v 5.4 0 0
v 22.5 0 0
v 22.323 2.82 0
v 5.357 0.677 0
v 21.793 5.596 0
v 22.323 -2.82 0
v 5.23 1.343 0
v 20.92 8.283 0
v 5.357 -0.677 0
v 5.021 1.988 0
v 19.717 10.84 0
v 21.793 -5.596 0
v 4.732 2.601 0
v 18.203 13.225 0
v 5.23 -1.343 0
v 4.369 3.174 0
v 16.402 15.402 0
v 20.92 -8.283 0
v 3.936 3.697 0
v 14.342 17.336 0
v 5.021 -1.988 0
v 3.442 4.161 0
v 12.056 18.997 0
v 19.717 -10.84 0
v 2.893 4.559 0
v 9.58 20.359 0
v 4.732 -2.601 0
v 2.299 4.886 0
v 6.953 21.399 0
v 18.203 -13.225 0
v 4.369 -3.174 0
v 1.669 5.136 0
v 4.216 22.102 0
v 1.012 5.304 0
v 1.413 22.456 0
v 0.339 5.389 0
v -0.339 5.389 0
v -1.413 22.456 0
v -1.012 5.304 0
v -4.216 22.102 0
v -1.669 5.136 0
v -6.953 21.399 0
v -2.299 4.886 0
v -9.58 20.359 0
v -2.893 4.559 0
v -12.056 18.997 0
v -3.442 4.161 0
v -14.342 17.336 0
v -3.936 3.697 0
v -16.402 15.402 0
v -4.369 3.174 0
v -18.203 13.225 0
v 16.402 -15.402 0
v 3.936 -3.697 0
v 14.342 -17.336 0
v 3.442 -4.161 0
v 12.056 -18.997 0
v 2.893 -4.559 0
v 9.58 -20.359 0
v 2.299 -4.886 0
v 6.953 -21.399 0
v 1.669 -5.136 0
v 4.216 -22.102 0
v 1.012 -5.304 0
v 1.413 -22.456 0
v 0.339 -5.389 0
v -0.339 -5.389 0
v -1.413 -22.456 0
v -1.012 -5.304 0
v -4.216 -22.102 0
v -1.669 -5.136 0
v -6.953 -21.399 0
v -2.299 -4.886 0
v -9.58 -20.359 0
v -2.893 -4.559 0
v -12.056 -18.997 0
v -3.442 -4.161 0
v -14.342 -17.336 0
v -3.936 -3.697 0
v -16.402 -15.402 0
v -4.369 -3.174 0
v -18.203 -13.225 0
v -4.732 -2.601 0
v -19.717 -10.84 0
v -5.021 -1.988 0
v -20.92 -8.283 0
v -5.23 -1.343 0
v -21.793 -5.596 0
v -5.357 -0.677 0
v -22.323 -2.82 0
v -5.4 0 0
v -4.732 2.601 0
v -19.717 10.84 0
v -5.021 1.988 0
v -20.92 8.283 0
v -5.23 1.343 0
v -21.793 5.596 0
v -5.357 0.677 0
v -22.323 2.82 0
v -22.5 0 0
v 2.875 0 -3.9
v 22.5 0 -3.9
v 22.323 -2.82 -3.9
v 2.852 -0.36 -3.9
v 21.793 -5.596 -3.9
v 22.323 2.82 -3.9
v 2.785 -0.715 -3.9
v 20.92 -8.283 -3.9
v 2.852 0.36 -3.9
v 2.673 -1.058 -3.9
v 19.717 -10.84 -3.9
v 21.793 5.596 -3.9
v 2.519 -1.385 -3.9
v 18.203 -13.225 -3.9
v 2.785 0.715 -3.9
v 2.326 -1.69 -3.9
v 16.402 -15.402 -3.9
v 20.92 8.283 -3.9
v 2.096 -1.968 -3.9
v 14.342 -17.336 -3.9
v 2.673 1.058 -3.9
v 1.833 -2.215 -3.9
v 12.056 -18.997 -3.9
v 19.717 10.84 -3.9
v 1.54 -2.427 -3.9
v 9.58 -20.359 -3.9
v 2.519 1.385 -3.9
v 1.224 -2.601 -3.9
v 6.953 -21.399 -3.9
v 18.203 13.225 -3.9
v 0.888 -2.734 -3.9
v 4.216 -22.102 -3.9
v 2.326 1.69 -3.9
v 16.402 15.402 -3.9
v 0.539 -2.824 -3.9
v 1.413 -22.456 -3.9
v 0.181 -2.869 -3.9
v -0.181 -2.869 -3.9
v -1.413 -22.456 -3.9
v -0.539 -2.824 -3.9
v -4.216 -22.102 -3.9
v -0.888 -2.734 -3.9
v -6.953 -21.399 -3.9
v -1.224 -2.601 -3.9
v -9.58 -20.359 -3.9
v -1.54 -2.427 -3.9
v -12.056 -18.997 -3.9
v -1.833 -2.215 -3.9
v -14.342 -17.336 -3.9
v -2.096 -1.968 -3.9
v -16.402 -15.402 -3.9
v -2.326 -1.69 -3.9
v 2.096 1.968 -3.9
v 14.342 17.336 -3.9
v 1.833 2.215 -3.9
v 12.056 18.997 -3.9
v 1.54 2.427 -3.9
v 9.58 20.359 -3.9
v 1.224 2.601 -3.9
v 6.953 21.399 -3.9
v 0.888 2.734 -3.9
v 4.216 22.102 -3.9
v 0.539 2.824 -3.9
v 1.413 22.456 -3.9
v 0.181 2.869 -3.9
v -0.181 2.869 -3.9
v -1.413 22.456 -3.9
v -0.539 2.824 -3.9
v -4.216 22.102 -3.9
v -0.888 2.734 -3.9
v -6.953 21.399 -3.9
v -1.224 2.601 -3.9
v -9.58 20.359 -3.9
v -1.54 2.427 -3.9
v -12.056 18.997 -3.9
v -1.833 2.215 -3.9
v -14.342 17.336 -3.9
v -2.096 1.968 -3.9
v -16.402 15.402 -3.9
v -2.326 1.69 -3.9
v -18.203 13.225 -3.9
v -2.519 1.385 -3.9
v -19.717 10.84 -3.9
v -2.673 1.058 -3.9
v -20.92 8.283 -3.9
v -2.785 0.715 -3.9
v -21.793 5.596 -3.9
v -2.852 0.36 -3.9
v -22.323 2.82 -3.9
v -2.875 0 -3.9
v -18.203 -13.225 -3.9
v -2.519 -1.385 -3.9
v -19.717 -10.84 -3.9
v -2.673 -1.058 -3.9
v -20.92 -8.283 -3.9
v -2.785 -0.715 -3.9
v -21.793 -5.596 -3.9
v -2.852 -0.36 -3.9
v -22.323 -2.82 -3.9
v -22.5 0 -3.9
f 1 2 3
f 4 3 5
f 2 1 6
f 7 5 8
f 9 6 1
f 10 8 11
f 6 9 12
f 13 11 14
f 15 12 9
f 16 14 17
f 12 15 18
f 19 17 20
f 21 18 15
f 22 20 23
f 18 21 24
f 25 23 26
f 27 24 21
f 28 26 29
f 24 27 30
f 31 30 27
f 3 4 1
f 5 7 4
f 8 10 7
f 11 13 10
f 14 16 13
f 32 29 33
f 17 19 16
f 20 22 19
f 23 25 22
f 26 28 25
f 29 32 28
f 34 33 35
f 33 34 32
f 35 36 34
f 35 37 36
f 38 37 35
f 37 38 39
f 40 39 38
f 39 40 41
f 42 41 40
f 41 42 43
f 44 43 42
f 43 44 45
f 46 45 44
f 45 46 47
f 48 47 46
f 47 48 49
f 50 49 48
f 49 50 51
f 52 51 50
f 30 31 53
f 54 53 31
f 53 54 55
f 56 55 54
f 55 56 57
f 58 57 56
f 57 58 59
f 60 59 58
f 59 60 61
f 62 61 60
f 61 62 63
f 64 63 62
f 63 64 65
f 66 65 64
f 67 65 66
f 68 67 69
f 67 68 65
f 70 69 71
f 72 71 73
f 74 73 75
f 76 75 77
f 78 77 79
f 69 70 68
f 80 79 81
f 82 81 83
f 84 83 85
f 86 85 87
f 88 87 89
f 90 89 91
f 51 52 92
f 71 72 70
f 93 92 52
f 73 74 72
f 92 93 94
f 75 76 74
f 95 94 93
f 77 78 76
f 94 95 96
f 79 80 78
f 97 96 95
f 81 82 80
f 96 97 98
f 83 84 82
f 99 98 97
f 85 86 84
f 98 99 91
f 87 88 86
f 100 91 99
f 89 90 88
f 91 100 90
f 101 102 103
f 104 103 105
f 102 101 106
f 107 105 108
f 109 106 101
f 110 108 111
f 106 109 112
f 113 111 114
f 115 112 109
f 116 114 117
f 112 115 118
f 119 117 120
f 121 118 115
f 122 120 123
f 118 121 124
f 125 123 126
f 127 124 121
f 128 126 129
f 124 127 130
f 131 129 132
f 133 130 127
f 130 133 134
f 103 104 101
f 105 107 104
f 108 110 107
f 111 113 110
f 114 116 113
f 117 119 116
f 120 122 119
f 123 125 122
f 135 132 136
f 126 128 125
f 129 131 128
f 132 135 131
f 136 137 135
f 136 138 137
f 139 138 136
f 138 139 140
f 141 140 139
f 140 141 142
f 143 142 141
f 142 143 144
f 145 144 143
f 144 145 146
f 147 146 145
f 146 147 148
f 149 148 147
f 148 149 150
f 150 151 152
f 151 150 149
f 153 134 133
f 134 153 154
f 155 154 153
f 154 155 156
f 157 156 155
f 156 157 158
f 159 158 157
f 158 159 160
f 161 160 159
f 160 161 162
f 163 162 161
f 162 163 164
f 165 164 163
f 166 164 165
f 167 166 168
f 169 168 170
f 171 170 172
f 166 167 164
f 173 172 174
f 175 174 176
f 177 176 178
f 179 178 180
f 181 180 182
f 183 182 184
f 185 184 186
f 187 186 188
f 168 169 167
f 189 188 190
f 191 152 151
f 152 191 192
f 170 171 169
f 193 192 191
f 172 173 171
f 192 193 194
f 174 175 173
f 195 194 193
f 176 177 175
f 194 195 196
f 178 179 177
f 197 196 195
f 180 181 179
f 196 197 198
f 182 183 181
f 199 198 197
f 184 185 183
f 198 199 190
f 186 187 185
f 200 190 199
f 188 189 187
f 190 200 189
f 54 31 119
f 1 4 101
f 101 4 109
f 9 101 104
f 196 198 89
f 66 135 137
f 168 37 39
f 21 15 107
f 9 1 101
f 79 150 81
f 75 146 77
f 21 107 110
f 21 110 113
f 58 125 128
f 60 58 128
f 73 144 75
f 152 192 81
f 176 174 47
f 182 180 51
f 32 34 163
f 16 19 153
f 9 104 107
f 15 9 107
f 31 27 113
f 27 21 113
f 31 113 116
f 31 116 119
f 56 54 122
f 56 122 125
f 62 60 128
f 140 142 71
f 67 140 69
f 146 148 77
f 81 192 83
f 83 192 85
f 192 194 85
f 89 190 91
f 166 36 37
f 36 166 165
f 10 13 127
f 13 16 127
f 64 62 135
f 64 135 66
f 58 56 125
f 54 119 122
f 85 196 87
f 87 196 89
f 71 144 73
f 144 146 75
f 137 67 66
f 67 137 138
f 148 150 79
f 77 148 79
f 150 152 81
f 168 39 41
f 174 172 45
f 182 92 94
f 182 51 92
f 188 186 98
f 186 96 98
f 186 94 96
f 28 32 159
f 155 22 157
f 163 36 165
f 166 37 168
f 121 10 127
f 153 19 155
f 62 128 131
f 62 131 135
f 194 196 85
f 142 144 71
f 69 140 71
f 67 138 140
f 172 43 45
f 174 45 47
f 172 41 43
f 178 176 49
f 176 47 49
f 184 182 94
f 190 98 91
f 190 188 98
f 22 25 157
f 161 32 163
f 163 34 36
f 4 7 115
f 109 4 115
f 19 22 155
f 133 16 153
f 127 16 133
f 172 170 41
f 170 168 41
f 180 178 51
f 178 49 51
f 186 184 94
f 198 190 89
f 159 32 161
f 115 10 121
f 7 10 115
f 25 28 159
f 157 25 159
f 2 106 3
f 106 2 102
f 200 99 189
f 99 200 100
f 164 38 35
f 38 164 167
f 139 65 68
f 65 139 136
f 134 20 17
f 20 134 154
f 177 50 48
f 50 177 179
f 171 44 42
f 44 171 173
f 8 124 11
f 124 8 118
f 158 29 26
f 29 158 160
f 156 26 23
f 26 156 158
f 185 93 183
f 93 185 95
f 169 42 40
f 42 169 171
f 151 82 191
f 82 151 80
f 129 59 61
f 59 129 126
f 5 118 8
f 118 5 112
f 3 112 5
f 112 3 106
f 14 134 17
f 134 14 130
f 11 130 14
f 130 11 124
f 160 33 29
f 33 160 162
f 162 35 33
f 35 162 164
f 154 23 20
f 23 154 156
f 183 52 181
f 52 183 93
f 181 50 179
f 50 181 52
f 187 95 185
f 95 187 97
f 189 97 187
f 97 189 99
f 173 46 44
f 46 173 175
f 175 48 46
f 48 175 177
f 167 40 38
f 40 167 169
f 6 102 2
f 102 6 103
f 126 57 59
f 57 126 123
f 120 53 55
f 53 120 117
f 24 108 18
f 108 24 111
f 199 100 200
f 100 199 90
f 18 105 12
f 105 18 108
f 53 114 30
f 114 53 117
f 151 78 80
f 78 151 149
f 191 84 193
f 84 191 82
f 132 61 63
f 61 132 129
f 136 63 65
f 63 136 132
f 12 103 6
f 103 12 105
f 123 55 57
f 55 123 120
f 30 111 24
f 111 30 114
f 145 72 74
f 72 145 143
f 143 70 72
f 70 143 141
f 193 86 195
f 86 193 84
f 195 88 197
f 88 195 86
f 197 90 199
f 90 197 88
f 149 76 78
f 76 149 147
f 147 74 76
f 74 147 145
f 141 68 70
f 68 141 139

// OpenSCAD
$fn = 50;


difference() {
	union() {
		translate(v = [0, 0, -3.9000000000]) {
			cylinder(h = 3.9000000000, r = 22.5000000000);
		}
	}
	union() {
		translate(v = [0, 0, 0]) {
			rotate(a = [0, 0, 0]) {
				difference() {
					union() {
						#translate(v = [0, 0, -3.9000000000]) {
							cylinder(h = 3.9000000000, r = 2.6000000000);
						}
						#translate(v = [0, 0, -3.9000000000]) {
							cylinder(h = 3.9000000000, r1 = 2.8750000000, r2 = 5.4000000000);
						}
						#translate(v = [0, 0, -3.9000000000]) {
							cylinder(h = 3.9000000000, r = 2.8750000000);
						}
						#translate(v = [0, 0, -3.9000000000]) {
							cylinder(h = 3.9000000000, r = 2.6000000000);
						}
					}
					union();
				}
			}
		}
	}
}
